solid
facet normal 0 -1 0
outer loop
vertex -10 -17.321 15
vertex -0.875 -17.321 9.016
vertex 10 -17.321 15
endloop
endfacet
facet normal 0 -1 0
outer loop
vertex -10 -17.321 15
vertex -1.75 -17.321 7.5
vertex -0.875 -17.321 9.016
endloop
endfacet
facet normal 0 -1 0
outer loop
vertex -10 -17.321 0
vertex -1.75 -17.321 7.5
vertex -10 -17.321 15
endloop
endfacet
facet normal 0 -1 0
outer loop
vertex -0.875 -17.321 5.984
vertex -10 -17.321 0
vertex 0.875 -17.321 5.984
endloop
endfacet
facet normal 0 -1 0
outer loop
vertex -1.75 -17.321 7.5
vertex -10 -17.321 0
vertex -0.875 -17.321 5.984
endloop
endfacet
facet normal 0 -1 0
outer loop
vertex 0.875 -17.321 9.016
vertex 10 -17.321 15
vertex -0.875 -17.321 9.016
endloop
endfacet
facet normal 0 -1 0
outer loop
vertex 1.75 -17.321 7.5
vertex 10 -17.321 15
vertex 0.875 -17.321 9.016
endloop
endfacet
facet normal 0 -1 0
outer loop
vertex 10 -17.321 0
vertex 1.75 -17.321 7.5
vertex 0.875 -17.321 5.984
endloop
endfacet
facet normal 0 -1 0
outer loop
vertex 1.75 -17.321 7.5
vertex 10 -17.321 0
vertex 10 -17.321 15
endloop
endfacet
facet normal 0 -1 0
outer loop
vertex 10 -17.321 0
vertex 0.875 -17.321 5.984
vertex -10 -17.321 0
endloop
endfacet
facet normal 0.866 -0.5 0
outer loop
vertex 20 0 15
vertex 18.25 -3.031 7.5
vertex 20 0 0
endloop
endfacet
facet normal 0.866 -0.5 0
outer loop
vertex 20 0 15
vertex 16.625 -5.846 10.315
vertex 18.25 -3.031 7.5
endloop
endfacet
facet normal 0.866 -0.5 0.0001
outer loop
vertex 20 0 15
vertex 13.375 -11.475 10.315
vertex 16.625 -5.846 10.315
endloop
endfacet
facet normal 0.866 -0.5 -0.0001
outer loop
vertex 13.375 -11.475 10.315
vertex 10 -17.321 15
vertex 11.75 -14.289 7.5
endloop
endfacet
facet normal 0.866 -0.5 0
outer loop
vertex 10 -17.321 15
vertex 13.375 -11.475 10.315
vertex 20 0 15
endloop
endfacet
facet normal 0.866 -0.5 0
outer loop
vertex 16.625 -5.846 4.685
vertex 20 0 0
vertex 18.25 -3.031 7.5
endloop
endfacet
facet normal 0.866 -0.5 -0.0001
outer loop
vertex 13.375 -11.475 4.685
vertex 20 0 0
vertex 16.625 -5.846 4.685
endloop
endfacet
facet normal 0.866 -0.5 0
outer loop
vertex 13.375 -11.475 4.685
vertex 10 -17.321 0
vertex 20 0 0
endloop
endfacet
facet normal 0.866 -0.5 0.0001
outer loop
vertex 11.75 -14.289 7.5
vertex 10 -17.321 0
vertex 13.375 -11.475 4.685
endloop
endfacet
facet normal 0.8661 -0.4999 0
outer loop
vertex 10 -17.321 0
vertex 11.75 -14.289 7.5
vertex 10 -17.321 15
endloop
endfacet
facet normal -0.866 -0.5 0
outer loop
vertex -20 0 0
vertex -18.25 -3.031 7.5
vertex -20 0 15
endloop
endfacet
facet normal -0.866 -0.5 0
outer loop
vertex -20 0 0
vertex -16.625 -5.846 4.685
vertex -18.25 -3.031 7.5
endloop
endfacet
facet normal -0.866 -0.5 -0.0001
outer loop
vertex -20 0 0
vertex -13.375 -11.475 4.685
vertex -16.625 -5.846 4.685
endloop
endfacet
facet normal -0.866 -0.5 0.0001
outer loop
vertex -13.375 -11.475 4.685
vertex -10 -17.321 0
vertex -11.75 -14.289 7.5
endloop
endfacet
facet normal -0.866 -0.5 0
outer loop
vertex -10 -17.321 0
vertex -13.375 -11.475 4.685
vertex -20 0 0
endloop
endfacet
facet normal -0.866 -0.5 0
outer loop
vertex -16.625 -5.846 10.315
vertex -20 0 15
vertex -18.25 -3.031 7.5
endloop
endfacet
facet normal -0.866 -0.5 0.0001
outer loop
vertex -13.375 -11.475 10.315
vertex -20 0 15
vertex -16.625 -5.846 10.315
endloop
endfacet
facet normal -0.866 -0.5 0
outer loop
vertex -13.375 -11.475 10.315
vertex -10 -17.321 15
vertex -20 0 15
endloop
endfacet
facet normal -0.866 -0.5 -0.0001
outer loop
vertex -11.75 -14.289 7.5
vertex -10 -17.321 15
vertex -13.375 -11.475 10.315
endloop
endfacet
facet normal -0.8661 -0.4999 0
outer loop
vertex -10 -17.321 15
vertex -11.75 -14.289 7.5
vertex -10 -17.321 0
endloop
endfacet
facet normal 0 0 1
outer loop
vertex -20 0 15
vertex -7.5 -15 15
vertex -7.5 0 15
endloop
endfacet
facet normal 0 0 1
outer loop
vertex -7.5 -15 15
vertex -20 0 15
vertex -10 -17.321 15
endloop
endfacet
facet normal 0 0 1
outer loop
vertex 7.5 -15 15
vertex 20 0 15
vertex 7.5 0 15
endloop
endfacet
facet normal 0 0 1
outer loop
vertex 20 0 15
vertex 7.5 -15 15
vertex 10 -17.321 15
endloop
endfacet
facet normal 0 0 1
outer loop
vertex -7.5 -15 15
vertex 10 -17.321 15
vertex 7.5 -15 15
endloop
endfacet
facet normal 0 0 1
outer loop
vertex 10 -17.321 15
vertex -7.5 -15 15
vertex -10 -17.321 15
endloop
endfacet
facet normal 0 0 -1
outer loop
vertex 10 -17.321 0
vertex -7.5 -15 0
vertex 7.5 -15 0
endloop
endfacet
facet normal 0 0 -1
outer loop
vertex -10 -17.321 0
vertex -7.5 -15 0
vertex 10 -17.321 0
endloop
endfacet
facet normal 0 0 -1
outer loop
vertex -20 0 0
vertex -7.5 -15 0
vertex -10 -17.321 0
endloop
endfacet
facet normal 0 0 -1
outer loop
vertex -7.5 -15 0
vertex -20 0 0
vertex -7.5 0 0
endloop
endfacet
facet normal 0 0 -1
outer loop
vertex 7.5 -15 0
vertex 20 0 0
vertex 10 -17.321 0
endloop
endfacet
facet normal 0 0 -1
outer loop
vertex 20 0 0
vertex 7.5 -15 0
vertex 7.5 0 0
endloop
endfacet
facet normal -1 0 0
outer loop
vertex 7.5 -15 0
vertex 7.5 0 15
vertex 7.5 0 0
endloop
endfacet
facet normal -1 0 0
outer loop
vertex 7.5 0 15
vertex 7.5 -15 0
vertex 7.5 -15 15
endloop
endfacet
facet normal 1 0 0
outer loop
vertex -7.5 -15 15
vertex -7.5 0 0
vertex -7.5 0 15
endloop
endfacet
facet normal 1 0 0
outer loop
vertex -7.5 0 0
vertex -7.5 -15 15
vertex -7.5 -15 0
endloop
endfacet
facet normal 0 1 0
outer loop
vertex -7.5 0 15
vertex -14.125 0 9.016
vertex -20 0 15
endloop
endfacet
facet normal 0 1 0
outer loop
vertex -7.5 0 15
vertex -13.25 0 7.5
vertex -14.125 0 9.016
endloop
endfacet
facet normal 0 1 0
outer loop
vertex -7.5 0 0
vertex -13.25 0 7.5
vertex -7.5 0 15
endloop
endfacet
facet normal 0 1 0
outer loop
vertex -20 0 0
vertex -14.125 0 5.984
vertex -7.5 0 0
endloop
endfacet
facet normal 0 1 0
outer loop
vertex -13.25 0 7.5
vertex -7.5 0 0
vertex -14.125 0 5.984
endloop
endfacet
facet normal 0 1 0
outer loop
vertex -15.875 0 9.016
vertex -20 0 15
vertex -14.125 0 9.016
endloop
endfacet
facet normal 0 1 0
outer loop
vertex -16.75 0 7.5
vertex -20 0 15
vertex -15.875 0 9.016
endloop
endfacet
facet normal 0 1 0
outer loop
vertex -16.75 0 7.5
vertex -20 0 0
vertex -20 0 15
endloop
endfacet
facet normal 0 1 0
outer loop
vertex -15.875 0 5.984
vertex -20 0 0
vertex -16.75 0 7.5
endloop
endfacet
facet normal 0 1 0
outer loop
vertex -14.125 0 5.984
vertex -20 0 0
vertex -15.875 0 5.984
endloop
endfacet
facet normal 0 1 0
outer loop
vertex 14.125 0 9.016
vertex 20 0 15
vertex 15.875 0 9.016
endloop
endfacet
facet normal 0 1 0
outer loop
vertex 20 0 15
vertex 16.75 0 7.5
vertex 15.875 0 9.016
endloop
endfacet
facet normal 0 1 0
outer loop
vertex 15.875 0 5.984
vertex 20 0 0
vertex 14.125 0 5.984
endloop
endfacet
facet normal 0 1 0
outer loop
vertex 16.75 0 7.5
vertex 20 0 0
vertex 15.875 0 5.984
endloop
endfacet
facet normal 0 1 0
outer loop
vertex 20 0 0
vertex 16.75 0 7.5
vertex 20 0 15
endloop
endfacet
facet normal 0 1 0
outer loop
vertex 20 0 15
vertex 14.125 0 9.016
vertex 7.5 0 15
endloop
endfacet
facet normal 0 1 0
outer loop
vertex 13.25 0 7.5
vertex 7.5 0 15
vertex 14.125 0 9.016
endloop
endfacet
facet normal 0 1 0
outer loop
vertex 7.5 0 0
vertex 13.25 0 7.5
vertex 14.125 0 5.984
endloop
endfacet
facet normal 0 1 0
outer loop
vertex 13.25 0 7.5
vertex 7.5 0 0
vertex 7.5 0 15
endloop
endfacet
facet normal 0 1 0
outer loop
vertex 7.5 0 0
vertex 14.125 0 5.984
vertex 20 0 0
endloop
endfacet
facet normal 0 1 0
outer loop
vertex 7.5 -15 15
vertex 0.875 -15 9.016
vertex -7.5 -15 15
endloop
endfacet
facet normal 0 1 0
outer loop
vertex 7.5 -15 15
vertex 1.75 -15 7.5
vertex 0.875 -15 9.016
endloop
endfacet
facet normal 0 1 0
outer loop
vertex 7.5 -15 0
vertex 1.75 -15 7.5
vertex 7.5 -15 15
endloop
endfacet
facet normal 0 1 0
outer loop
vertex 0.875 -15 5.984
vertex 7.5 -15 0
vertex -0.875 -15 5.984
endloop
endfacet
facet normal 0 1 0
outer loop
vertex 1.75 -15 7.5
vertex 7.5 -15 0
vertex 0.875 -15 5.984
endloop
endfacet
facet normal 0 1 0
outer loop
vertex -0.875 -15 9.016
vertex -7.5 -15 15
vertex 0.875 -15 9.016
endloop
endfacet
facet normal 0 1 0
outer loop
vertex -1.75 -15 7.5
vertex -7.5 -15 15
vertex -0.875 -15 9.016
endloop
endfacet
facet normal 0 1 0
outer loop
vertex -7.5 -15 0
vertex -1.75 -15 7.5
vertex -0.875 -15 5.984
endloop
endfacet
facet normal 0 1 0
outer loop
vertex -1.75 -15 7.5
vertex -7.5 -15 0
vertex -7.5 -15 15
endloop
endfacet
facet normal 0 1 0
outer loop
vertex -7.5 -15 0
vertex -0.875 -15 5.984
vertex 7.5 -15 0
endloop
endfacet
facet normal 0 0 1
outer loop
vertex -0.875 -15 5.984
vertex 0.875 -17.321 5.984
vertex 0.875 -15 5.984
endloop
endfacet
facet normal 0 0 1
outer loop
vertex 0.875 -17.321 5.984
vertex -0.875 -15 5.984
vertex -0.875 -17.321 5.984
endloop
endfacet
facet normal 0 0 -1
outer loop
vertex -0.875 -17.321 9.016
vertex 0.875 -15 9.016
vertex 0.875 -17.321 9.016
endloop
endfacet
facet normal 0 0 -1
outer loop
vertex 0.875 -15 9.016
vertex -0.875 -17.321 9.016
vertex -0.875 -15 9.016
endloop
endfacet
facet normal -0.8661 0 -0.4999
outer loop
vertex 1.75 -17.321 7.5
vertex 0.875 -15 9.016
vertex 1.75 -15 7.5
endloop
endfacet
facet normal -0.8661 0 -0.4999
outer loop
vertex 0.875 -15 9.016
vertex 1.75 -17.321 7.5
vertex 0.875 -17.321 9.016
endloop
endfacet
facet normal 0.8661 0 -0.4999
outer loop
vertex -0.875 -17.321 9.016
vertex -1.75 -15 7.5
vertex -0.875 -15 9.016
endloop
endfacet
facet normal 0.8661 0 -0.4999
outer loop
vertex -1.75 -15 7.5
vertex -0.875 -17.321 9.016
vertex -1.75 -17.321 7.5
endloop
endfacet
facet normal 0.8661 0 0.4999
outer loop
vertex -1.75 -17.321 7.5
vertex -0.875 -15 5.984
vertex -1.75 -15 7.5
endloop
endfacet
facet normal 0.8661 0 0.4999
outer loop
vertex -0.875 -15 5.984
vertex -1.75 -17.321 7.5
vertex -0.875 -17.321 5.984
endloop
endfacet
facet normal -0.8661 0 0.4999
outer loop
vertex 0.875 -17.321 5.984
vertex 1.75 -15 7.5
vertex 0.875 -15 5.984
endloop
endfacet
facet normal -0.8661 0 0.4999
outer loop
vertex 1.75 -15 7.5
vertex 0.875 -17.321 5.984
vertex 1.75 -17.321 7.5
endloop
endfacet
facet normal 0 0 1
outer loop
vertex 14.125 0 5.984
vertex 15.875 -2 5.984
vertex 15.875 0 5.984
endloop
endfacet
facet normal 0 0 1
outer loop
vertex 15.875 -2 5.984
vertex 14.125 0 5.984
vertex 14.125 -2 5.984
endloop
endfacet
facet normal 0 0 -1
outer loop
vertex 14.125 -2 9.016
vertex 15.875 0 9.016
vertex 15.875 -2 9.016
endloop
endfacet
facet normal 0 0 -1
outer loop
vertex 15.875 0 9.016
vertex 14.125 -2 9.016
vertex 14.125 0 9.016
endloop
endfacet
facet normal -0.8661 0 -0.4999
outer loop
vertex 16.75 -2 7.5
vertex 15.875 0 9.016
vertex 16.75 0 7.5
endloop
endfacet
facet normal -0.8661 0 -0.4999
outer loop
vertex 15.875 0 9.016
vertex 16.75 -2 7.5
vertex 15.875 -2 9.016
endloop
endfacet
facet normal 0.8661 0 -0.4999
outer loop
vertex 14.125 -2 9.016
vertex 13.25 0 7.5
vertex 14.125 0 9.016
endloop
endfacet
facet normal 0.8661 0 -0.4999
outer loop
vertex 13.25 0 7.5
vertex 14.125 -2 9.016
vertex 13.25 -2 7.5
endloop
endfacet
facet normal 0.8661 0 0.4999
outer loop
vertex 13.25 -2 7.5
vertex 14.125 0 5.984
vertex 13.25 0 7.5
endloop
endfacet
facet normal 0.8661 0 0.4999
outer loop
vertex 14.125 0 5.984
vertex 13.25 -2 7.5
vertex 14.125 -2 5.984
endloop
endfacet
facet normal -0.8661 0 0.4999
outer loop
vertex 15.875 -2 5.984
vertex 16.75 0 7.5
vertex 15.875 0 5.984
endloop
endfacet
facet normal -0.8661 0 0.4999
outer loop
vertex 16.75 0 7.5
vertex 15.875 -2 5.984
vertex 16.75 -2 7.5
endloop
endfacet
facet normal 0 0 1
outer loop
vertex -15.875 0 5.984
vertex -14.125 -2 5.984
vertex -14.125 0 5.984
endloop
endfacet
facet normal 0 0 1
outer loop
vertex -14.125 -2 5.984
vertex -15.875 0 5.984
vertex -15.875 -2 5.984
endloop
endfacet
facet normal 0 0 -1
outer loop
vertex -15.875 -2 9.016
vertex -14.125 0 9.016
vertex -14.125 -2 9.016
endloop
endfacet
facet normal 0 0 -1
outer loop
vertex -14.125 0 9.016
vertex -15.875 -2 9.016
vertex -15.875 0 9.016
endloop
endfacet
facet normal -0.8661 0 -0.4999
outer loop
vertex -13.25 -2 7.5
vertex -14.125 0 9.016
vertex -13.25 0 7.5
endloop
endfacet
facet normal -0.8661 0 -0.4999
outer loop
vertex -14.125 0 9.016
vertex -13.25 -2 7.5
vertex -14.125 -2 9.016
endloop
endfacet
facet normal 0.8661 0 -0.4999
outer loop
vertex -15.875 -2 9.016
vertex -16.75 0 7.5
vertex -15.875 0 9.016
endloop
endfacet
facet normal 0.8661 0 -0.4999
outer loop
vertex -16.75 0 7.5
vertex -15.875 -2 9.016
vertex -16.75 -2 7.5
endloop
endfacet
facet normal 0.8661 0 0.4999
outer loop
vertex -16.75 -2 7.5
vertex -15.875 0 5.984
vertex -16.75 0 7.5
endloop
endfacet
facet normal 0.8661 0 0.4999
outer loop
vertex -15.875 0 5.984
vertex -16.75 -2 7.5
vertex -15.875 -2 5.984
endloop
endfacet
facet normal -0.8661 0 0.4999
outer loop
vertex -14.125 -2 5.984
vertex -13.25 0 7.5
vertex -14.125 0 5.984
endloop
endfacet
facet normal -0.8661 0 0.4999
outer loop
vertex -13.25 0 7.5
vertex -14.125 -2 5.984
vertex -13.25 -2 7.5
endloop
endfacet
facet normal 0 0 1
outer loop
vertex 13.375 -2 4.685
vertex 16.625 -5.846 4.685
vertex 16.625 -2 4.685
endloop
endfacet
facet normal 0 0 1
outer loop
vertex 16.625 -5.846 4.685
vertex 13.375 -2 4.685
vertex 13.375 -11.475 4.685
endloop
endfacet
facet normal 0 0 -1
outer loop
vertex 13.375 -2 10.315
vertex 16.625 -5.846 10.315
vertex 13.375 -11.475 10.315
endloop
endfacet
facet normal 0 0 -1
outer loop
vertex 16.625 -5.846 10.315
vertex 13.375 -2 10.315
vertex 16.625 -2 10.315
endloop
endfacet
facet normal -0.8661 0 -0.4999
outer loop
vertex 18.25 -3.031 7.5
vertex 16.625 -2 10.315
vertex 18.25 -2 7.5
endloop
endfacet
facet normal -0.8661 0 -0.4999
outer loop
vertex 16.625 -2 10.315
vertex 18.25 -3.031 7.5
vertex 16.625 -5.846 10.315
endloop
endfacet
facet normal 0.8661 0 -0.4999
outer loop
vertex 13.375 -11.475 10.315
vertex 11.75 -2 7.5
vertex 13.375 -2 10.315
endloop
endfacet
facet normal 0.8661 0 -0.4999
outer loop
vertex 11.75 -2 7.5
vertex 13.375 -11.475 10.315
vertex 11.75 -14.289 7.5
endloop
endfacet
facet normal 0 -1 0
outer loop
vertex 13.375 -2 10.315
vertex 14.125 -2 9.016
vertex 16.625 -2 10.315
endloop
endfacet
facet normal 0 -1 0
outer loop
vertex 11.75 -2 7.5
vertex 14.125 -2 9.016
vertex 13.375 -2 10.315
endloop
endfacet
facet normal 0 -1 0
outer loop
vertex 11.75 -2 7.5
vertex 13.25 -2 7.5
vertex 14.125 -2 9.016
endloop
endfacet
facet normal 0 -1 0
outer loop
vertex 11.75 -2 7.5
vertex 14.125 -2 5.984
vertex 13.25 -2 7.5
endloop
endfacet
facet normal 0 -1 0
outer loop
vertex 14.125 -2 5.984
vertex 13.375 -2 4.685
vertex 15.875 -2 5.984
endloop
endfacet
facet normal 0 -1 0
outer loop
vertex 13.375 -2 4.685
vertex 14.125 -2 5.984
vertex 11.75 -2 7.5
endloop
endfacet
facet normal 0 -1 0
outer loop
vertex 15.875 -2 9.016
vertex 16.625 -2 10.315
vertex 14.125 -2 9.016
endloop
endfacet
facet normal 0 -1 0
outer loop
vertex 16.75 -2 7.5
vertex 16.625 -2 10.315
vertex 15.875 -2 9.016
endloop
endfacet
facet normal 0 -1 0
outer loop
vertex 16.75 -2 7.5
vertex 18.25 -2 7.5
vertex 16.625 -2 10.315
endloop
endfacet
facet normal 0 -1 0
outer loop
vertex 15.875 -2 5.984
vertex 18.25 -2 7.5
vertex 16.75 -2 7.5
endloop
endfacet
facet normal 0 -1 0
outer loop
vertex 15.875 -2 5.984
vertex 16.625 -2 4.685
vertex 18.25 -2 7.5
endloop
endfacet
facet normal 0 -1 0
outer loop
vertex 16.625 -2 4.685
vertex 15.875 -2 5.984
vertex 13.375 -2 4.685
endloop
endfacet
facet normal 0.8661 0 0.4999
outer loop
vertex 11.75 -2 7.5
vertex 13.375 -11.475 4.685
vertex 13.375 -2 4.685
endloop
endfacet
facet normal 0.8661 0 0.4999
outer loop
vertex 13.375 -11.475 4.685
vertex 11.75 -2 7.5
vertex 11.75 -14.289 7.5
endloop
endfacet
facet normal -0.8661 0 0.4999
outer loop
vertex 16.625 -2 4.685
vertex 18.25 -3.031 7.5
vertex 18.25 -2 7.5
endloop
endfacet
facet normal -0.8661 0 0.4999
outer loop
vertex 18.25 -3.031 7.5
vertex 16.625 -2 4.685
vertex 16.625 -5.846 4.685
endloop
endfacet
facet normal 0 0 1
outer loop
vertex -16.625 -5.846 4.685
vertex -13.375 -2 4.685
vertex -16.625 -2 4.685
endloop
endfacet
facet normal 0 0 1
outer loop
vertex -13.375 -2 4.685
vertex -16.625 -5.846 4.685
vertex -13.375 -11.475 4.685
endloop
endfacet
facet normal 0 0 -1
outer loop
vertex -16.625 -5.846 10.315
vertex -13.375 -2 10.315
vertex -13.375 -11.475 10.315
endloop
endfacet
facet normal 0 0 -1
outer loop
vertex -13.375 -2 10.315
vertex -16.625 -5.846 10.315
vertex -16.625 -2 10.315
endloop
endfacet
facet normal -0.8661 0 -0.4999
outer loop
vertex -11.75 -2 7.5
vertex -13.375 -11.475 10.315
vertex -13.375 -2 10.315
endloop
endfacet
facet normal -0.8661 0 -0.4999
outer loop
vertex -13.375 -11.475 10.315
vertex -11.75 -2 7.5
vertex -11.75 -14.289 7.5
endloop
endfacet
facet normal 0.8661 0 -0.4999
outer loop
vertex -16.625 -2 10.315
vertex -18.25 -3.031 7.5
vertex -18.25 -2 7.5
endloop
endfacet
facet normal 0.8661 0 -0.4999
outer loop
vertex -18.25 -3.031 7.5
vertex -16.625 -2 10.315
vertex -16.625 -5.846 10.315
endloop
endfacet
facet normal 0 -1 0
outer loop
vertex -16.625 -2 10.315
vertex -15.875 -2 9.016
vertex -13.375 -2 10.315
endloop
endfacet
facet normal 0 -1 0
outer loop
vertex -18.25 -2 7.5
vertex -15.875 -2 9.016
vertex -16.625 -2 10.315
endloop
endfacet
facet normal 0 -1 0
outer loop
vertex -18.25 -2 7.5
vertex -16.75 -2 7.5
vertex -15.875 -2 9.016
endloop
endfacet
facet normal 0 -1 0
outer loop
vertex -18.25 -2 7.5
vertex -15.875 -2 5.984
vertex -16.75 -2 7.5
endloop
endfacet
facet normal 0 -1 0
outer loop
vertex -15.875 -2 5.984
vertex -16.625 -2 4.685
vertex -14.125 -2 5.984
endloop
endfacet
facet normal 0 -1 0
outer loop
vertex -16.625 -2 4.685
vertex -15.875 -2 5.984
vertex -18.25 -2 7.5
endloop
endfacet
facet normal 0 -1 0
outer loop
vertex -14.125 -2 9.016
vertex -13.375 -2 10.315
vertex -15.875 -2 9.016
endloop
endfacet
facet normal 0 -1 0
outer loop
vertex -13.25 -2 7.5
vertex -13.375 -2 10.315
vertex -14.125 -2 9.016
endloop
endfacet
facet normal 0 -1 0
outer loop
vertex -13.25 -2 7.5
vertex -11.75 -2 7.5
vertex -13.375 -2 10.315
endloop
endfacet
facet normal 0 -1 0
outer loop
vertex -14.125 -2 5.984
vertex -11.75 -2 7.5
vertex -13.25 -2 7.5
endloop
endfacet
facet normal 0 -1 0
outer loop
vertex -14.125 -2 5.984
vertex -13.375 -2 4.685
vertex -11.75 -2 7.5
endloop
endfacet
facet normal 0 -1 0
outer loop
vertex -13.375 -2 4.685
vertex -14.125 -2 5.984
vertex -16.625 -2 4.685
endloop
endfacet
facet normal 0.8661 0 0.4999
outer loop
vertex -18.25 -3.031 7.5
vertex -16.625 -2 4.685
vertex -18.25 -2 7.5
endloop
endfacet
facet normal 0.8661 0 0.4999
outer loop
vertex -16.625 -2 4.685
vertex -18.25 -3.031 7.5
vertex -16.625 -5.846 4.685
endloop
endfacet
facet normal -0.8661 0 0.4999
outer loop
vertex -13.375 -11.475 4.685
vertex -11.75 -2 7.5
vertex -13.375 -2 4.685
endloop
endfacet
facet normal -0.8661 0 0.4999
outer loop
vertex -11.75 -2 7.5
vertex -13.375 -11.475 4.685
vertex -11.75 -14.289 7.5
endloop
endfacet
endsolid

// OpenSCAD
//vertical beam mounts
$fn=6;
difference(){
    cylinder(d=40,h=15,$fn=6);
    translate([0,-7.5,0])cube([15,15,60],center=true);
    translate([-20,0,0])cube(40);
    
    translate([0,0,7.5])rotate([90,0,0])cylinder(d=3.5,h=20);
    translate([15,0,7.5])rotate([90,0,0])cylinder(d=3.5,h=20);
    translate([-15,0,7.5])rotate([90,0,0])cylinder(d=3.5,h=20);
    
    translate([15,-2,7.5])rotate([90,0,0])cylinder(d=6.5,h=20);
    translate([-15,-2,7.5])rotate([90,0,0])cylinder(d=6.5,h=20);
}//end difference
